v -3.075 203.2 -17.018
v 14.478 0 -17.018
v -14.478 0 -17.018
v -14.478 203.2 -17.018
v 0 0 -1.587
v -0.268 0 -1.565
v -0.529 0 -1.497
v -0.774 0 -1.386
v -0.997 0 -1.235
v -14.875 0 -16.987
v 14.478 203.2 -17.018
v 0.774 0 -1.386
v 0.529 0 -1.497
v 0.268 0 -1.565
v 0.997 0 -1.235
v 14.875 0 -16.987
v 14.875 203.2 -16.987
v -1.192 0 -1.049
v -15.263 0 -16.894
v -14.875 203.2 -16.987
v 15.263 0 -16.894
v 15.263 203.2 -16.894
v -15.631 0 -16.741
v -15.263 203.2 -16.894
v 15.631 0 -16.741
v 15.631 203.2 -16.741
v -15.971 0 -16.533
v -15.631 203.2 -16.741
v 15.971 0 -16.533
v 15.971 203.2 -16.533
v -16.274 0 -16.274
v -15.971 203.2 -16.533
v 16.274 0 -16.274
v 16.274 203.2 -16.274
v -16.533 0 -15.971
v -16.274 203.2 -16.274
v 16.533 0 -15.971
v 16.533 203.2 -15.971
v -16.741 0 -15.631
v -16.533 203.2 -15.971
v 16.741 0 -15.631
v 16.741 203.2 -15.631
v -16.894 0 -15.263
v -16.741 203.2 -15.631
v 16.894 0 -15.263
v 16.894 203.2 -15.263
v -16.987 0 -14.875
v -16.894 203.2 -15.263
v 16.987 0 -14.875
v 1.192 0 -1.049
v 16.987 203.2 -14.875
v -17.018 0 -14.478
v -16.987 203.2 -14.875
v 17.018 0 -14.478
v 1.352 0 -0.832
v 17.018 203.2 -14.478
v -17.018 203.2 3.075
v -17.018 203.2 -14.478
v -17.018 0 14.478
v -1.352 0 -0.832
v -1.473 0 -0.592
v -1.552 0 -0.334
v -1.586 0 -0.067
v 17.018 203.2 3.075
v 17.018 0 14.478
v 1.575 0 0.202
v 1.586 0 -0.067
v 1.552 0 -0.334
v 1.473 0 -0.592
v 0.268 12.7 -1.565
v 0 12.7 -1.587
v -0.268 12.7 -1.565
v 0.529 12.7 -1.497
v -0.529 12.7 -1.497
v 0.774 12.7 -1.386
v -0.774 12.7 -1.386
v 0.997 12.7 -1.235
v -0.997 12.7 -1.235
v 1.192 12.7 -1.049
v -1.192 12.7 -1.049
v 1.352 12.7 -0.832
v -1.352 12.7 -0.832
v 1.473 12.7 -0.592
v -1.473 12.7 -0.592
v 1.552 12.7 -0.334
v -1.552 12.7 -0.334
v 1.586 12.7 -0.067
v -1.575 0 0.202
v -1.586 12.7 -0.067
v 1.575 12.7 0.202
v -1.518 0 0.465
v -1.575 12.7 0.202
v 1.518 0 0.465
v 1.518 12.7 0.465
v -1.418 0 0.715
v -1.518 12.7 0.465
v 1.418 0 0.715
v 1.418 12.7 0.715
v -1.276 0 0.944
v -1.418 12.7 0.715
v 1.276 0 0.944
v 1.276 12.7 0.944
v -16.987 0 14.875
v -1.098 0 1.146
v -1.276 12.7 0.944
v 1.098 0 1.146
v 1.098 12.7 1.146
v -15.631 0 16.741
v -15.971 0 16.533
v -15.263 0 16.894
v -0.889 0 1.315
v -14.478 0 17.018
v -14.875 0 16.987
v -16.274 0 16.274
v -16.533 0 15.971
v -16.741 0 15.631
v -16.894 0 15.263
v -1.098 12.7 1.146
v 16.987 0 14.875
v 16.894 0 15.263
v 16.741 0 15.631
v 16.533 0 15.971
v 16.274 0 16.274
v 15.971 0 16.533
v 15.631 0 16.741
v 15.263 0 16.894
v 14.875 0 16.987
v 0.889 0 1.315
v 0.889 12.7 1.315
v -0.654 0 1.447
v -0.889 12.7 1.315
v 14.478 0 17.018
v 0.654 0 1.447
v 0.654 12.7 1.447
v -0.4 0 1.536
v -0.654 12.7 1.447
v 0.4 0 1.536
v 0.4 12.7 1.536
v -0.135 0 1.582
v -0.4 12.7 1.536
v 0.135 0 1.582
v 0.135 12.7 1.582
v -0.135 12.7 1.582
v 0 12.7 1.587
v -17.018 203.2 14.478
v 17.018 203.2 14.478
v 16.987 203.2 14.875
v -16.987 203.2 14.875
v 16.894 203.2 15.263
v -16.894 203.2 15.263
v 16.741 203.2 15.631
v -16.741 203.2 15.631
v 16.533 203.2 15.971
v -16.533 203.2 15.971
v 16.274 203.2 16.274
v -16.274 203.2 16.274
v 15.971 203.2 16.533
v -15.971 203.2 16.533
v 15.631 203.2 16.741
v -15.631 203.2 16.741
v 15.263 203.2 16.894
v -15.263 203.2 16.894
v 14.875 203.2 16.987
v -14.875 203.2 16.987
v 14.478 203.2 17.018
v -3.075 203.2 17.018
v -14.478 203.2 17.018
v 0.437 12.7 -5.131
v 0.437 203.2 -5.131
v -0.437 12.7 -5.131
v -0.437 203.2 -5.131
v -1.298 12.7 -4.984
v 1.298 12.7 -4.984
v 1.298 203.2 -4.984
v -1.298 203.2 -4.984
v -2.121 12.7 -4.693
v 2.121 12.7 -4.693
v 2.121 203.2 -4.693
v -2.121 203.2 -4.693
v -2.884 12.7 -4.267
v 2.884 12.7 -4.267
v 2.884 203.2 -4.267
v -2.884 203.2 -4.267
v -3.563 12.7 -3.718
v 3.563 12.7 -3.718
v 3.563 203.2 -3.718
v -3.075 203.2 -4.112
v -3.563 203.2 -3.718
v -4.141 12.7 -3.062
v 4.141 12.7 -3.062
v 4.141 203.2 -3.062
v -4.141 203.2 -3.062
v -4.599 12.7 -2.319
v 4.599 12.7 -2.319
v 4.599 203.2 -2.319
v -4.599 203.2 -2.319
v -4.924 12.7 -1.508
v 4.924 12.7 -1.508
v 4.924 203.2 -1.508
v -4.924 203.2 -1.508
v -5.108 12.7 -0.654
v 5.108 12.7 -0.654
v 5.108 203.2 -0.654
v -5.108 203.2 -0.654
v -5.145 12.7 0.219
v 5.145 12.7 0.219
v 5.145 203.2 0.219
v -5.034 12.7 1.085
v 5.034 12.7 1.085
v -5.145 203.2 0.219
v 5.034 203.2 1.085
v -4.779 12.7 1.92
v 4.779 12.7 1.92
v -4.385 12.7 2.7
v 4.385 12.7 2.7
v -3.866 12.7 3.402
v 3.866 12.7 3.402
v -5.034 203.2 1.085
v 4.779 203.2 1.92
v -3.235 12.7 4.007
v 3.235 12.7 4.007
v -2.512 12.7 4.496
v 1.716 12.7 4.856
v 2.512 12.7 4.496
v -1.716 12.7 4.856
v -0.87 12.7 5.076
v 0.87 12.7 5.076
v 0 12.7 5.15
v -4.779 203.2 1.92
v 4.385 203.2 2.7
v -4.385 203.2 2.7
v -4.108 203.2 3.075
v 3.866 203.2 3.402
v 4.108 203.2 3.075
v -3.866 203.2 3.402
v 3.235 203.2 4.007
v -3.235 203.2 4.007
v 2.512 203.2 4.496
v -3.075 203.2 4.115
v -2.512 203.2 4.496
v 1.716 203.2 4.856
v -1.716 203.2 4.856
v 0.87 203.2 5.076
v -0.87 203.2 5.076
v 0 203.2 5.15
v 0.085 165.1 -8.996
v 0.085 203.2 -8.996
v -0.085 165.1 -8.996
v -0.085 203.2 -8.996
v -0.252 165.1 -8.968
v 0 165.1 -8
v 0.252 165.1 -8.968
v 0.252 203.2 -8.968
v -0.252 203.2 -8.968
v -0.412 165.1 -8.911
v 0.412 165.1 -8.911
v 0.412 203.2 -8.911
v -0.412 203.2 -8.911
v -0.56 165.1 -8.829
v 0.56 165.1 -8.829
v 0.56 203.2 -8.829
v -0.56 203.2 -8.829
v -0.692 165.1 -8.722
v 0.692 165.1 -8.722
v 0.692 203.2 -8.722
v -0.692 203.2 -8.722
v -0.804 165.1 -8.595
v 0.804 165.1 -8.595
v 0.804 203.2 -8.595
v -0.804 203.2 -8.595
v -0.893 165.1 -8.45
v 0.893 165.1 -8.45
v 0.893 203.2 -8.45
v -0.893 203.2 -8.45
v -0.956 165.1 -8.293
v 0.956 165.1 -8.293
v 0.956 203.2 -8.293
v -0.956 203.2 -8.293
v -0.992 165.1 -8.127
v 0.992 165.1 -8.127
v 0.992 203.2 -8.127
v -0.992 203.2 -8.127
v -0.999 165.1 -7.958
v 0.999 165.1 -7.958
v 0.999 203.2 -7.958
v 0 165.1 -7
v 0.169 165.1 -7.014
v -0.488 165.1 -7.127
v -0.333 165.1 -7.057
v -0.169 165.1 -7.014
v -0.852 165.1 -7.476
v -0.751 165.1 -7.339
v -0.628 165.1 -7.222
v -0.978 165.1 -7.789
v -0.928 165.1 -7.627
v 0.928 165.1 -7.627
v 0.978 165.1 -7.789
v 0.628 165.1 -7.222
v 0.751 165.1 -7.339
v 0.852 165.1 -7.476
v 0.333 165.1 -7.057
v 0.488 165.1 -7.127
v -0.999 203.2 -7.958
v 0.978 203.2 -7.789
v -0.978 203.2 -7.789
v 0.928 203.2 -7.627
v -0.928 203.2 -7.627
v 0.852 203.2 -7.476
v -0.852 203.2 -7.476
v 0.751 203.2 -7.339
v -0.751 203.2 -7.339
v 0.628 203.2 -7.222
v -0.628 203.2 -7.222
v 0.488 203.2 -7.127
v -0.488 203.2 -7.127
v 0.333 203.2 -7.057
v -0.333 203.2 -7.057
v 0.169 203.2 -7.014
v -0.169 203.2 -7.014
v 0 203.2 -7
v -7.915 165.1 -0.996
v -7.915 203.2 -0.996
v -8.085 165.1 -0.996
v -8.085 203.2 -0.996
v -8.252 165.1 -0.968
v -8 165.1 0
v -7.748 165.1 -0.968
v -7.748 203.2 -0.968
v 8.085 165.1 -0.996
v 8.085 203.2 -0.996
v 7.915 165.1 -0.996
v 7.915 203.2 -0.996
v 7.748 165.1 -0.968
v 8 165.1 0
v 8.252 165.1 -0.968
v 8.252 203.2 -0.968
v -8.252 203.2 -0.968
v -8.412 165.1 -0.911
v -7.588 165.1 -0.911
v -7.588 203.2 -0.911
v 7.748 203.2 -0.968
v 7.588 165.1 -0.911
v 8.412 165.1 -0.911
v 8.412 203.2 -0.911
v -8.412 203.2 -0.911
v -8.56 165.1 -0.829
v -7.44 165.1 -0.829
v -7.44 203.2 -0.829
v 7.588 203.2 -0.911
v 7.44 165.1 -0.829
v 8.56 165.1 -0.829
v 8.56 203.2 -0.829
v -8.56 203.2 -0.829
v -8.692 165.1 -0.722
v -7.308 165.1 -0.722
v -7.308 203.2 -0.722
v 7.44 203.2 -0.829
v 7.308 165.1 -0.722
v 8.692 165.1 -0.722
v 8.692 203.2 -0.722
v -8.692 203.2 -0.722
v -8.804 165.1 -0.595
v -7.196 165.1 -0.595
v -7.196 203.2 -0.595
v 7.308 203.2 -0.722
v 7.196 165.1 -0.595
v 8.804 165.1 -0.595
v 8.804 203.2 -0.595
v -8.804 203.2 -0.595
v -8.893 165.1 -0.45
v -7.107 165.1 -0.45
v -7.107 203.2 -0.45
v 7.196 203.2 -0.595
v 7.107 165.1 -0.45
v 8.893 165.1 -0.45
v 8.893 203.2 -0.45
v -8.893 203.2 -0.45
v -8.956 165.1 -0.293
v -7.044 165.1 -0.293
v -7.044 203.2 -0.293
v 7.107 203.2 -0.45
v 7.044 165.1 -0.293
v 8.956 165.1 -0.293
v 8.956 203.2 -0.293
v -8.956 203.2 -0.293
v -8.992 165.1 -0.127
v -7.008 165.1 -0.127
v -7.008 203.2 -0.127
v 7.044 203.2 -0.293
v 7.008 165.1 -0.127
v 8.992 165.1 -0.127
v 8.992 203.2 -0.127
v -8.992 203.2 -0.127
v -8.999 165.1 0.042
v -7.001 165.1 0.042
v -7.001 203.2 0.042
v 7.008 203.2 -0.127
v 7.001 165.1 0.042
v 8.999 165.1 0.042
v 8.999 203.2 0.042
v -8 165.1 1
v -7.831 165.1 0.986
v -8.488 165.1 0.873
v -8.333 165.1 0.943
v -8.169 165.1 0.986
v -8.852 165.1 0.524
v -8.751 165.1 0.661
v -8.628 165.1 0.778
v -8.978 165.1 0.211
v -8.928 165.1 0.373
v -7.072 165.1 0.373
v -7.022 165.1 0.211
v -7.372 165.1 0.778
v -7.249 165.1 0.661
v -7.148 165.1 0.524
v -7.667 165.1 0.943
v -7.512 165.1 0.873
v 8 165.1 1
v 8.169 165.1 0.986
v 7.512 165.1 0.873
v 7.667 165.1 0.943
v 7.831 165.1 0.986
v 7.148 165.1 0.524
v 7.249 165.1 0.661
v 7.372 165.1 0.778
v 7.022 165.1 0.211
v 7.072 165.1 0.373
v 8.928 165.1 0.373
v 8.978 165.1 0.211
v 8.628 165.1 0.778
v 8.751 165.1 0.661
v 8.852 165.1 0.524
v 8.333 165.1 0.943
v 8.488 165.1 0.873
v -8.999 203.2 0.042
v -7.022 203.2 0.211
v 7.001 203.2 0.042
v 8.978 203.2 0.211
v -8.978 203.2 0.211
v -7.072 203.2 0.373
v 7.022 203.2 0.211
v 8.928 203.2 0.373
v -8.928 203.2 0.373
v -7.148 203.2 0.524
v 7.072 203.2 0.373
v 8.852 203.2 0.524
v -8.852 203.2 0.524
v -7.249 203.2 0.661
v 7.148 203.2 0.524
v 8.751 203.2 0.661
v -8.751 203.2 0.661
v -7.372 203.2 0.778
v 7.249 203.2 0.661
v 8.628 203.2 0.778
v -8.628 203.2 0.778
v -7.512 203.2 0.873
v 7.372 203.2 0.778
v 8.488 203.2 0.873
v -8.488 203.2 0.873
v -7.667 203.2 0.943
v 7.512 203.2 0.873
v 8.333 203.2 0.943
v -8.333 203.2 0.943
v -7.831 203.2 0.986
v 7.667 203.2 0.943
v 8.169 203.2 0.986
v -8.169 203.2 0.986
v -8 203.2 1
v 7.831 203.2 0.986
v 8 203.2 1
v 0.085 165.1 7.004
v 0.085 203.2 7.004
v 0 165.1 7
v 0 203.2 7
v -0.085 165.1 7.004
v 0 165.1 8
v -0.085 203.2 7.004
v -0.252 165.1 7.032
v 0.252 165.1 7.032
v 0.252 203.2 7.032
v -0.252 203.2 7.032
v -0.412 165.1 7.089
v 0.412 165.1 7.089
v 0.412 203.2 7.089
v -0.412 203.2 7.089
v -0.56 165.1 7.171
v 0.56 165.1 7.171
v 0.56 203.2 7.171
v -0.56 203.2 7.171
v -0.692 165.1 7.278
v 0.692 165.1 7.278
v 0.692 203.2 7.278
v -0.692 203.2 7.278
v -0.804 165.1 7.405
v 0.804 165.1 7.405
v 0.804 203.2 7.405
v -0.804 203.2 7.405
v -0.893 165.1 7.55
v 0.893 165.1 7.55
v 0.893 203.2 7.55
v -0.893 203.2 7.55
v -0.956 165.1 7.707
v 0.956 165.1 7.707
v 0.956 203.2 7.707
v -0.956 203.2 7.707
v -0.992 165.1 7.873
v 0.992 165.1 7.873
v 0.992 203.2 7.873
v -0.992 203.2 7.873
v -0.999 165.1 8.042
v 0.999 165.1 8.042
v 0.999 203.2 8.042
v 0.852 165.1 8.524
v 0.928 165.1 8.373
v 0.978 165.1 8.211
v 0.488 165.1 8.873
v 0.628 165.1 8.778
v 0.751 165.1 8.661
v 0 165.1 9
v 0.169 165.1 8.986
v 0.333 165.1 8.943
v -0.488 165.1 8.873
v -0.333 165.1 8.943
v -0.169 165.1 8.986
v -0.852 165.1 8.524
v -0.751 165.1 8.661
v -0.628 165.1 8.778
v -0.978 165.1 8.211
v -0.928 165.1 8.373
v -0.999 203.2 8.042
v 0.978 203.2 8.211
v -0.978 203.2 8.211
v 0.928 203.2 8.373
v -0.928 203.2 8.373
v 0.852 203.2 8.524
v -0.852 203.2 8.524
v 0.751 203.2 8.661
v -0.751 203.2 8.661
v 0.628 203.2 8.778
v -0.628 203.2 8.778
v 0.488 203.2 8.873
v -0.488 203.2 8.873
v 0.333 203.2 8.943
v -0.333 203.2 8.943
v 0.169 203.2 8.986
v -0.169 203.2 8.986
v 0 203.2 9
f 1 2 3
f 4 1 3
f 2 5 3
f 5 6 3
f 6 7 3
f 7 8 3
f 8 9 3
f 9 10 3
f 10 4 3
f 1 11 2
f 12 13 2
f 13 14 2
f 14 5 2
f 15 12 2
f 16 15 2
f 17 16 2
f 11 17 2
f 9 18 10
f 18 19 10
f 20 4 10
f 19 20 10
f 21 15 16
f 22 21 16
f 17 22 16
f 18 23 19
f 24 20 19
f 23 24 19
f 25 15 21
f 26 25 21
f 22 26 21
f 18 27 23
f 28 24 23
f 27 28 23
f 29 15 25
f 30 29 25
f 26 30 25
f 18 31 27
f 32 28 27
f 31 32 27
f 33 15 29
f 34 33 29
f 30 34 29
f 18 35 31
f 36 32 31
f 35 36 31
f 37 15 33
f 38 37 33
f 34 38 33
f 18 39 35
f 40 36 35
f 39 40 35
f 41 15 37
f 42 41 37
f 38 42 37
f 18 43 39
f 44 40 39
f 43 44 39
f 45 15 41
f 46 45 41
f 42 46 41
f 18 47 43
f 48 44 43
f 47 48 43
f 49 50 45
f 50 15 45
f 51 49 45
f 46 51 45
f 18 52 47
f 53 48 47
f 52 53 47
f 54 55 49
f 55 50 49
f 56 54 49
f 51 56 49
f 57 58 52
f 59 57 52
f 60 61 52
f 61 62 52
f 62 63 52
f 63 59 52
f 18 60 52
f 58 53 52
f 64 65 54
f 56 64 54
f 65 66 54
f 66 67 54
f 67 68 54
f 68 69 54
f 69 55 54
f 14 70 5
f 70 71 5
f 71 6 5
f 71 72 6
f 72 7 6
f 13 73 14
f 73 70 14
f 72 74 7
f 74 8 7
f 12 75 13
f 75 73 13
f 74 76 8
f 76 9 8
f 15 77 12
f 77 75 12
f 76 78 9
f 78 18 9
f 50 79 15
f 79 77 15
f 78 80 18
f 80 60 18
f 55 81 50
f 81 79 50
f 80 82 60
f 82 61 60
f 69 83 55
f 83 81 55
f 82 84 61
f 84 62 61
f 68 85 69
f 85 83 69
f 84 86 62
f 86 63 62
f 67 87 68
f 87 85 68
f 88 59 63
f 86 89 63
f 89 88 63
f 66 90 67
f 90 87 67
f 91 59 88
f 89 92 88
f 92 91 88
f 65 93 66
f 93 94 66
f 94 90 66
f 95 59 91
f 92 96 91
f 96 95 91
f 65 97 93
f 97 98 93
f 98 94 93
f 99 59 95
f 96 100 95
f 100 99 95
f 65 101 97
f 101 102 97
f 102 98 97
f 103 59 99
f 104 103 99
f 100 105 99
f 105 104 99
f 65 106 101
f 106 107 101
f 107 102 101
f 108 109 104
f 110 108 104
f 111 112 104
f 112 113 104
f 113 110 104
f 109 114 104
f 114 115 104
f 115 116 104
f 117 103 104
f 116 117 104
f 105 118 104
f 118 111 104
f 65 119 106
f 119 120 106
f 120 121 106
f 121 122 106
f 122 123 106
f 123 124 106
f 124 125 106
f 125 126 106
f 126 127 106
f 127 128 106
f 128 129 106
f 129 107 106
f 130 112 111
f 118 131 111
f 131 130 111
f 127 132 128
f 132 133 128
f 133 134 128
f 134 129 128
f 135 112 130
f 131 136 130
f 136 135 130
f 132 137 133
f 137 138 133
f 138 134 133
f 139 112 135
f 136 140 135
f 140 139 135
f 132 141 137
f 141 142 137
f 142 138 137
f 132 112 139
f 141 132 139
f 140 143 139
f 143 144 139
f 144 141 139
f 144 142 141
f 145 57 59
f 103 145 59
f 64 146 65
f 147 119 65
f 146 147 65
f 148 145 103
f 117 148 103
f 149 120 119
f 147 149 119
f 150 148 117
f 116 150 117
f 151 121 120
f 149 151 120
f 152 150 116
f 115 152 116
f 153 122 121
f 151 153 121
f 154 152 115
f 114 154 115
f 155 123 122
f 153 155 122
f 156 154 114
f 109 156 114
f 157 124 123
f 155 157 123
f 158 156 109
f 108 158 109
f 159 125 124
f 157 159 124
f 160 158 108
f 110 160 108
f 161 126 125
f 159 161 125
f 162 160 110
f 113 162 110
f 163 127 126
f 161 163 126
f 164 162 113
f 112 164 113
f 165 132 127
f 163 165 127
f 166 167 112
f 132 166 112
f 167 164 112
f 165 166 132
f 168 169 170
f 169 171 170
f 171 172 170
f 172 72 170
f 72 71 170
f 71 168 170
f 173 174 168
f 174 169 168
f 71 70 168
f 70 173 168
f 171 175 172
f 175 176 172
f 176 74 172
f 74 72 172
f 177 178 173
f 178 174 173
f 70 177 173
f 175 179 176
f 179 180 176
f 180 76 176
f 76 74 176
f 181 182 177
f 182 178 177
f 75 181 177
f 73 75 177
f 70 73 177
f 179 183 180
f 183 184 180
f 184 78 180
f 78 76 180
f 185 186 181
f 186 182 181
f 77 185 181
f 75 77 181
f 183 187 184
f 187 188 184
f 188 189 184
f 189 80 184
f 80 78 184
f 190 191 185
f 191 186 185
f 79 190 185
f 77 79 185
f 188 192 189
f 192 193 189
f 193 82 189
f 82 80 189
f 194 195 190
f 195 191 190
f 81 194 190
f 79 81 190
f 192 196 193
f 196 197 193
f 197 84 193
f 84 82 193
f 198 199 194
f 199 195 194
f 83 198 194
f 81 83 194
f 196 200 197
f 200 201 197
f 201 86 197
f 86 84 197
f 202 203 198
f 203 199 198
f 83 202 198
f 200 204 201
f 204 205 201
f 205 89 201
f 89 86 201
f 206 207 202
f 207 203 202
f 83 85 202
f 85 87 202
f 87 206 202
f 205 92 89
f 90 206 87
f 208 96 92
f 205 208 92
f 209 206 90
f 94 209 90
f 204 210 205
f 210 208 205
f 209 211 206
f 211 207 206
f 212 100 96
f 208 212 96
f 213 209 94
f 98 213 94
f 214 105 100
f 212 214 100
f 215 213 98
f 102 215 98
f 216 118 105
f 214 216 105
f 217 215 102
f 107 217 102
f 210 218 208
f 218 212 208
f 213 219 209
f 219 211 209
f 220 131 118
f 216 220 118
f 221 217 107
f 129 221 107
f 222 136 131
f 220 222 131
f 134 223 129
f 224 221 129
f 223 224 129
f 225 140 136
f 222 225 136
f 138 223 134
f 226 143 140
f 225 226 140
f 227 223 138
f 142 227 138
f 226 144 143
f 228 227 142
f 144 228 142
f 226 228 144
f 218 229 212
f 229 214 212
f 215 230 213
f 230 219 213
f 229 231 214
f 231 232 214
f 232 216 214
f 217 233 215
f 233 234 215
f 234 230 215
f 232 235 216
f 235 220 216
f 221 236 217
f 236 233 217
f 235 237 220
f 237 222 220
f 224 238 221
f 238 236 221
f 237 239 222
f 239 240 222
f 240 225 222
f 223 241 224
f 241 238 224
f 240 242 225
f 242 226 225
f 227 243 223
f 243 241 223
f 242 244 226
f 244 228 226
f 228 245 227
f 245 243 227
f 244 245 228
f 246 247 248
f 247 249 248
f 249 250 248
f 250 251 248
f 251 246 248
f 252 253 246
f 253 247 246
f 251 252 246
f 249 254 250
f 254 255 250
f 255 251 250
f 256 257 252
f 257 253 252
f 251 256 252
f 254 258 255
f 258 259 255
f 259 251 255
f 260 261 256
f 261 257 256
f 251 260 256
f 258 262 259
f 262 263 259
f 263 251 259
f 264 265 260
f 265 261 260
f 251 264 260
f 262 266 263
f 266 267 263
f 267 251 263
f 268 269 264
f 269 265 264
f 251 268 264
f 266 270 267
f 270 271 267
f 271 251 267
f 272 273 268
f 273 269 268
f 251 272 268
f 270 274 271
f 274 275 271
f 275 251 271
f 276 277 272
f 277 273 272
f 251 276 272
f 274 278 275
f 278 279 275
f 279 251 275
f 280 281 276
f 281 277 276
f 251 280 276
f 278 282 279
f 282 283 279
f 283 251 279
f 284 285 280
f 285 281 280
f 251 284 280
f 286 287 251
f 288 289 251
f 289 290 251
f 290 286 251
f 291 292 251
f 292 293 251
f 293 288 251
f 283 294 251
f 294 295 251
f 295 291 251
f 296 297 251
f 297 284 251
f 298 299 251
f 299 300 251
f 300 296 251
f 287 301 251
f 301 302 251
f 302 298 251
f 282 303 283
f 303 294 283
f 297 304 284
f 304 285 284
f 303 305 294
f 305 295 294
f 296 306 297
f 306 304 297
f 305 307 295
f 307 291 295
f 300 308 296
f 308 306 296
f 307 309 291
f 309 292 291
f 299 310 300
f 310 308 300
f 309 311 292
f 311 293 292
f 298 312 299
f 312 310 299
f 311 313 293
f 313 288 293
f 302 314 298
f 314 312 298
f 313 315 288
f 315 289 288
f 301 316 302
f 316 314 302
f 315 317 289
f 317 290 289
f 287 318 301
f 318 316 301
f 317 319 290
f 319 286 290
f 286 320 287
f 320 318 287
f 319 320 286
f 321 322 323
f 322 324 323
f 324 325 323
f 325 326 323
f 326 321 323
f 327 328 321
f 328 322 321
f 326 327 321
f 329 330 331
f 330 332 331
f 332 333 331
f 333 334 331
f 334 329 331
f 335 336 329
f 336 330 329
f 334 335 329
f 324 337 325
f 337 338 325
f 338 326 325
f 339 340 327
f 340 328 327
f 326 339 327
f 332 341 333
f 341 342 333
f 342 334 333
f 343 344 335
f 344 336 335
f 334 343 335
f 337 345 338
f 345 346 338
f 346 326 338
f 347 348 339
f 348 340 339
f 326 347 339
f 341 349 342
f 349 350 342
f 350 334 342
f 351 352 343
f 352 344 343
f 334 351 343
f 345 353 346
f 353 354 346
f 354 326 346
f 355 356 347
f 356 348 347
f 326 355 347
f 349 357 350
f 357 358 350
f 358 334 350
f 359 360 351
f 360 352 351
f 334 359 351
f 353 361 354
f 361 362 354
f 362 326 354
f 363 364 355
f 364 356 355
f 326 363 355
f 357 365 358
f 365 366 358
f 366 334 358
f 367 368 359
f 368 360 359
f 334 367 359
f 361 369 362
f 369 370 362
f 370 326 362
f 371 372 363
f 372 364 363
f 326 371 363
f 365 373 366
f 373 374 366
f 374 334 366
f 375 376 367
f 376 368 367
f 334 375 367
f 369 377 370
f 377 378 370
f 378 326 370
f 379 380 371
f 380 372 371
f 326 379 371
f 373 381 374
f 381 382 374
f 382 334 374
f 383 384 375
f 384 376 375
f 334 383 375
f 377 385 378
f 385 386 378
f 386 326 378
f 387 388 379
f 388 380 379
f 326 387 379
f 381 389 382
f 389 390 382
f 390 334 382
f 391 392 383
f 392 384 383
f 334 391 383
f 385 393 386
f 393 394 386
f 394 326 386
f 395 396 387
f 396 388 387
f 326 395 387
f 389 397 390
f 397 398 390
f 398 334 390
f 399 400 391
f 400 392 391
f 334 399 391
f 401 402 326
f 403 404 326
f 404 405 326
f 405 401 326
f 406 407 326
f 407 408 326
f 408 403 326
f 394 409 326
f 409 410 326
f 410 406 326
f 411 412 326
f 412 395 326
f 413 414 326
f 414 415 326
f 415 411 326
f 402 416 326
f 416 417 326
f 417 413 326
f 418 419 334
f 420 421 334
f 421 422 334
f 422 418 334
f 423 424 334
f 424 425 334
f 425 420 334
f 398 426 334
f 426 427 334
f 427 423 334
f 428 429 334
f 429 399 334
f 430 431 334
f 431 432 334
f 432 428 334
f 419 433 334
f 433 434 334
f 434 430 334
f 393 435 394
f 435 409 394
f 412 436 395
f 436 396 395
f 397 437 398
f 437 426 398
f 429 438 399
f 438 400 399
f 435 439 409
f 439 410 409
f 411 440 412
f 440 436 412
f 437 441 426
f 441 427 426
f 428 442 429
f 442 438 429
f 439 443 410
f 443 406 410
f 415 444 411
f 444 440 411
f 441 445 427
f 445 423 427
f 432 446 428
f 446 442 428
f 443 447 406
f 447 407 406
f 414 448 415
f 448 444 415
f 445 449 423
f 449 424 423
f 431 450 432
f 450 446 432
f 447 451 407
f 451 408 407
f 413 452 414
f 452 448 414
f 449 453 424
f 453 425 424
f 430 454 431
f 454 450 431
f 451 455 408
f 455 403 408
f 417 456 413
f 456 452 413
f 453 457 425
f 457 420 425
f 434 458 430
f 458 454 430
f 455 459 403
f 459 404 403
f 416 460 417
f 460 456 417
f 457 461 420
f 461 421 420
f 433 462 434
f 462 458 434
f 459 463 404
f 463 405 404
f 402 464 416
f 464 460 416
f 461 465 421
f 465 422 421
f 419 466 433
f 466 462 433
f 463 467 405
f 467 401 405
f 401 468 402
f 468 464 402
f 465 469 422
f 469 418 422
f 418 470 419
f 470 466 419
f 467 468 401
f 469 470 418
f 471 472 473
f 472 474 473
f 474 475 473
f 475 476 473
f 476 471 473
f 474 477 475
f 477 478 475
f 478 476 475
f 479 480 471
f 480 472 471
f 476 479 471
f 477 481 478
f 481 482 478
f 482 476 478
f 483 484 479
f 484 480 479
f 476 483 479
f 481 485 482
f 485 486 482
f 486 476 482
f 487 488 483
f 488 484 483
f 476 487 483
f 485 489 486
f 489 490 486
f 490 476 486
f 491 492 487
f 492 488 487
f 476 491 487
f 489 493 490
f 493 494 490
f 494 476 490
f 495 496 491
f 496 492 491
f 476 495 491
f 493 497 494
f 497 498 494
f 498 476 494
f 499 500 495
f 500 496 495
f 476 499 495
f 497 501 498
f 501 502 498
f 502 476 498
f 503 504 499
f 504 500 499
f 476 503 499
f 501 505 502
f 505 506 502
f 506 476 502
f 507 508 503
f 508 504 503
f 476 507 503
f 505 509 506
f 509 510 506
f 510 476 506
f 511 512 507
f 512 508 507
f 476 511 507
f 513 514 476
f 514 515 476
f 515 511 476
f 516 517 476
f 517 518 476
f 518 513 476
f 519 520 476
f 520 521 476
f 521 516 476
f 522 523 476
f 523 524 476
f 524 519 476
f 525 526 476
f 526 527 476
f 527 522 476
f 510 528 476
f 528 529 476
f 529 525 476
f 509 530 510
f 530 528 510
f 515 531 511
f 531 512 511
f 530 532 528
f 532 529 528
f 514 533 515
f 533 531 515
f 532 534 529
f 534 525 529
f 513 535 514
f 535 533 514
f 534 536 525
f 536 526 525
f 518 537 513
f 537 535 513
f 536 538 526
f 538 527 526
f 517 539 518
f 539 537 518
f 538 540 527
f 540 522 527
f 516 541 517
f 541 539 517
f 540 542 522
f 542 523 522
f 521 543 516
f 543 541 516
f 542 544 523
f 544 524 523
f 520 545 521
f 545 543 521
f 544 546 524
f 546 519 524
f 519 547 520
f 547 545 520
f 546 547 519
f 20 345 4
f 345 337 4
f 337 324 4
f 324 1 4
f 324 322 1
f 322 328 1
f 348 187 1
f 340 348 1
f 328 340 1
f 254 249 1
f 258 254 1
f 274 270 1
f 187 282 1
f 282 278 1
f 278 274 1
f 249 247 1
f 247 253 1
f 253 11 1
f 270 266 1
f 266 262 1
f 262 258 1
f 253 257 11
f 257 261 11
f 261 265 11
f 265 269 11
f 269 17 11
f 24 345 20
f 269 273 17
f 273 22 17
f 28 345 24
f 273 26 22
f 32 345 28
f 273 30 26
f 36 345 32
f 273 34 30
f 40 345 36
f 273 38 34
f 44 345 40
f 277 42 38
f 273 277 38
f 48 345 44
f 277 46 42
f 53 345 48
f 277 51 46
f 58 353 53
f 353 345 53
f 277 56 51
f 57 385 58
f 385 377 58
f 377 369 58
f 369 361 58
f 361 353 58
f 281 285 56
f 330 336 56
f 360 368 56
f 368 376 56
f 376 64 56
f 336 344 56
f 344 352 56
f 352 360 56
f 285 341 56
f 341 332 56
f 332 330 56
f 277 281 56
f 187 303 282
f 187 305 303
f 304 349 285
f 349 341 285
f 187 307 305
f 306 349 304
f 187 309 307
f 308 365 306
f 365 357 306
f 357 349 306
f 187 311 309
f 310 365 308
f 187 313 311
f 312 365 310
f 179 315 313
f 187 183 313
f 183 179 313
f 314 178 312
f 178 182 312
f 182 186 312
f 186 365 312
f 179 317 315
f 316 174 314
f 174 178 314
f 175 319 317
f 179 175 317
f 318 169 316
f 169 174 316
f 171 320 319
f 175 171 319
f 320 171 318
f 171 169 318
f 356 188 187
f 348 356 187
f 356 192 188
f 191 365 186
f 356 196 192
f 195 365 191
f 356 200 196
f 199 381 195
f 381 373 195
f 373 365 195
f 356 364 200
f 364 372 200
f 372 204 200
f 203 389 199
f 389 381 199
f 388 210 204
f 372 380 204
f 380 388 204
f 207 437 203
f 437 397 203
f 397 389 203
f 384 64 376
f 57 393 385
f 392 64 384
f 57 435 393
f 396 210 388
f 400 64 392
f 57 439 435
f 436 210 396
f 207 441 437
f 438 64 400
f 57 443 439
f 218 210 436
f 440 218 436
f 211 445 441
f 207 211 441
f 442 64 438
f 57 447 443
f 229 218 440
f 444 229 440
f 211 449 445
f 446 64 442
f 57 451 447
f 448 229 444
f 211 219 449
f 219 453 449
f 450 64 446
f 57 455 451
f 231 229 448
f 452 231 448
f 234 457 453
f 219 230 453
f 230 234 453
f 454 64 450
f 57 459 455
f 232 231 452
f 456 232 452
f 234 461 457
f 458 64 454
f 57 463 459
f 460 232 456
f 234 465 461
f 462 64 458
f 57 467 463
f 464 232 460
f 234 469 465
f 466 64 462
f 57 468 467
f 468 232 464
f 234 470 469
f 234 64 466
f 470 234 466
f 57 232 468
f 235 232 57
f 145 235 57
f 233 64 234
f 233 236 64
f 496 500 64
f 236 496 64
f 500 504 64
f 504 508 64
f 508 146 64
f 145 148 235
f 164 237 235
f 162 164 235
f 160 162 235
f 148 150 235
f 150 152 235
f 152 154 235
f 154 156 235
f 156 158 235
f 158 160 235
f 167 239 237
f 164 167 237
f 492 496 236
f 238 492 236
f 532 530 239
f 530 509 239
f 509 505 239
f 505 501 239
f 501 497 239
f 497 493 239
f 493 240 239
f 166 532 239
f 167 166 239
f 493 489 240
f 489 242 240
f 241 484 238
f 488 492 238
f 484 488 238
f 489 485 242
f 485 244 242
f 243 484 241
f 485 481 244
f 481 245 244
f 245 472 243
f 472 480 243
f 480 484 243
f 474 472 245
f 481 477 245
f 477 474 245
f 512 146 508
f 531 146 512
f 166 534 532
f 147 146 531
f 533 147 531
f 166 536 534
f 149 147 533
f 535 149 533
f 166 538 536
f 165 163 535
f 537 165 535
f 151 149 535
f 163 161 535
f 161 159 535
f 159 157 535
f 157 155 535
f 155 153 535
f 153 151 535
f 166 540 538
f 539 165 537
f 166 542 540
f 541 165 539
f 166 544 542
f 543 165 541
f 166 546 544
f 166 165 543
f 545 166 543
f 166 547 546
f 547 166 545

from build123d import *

# Parameters (mm, degrees)
SKETCH1_W           = 34.036
SKETCH1_H           = 34.036
BOSS_EXTRUDE1_DEPTH = 203.2
SKETCH2_R           = 1
CUT_EXTRUDE1_DEPTH  = 38.1
FILLET1_R           = 2.54
SKETCH3_R           = 5.15
CUT_EXTRUDE2_DEPTH  = 190.5
SKETCH4_R           = 1.5875
CUT_EXTRUDE3_DEPTH  = 205.620293832


with BuildPart() as part:
    # Sketch1 → Boss-Extrude1 (new body)
    with BuildSketch(Plane(origin=(0, 0, 0), x_dir=(1, 0, 0), z_dir=(0, 1, 0))):
        Rectangle(SKETCH1_W, SKETCH1_H)
    extrude(amount=BOSS_EXTRUDE1_DEPTH)

    # Sketch2 → Cut-Extrude1 (cut)
    with BuildSketch(Plane(origin=(0, 203.2, 0), x_dir=(1, 0, 0), z_dir=(0, 1, 0))):
        with Locations(Location((0, 8, 0), (0, 0, 270))):
            Circle(SKETCH2_R)
        with Locations(Location((0, -8, 0), (0, 0, 270))):
            Circle(SKETCH2_R)
        with Locations(Location((-8, 0, 0), (0, 0, 270))):
            Circle(SKETCH2_R)
        with Locations(Location((8, 0, 0), (0, 0, 270))):
            Circle(SKETCH2_R)
    extrude(amount=-CUT_EXTRUDE1_DEPTH, mode=Mode.SUBTRACT)

    # Fillet1
    fillet1_edges = [part.edges().sort_by_distance(p)[0] for p in [
        (-17.018, 101.6, -17.018),
        (17.018, 101.6, -17.018),
        (17.018, 101.6, 17.018),
        (-17.018, 101.6, 17.018),
    ]]
    fillet(fillet1_edges, radius=FILLET1_R)

    # Sketch3 → Cut-Extrude2 (cut)
    with BuildSketch(Plane(origin=(0, 203.2, 0), x_dir=(1, 0, 0), z_dir=(0, 1, 0))):
        with Locations(Location((0, 0, 0), (0, 0, 270))):
            Circle(SKETCH3_R)
    extrude(amount=-CUT_EXTRUDE2_DEPTH, mode=Mode.SUBTRACT)

    # Sketch4 → Cut-Extrude3 (cut, through all)
    with BuildSketch(Plane.XZ):
        with Locations(Location((0, 0, 0), (0, 0, 270))):
            Circle(SKETCH4_R)
    extrude(amount=-CUT_EXTRUDE3_DEPTH, mode=Mode.SUBTRACT)


solid = part.part
